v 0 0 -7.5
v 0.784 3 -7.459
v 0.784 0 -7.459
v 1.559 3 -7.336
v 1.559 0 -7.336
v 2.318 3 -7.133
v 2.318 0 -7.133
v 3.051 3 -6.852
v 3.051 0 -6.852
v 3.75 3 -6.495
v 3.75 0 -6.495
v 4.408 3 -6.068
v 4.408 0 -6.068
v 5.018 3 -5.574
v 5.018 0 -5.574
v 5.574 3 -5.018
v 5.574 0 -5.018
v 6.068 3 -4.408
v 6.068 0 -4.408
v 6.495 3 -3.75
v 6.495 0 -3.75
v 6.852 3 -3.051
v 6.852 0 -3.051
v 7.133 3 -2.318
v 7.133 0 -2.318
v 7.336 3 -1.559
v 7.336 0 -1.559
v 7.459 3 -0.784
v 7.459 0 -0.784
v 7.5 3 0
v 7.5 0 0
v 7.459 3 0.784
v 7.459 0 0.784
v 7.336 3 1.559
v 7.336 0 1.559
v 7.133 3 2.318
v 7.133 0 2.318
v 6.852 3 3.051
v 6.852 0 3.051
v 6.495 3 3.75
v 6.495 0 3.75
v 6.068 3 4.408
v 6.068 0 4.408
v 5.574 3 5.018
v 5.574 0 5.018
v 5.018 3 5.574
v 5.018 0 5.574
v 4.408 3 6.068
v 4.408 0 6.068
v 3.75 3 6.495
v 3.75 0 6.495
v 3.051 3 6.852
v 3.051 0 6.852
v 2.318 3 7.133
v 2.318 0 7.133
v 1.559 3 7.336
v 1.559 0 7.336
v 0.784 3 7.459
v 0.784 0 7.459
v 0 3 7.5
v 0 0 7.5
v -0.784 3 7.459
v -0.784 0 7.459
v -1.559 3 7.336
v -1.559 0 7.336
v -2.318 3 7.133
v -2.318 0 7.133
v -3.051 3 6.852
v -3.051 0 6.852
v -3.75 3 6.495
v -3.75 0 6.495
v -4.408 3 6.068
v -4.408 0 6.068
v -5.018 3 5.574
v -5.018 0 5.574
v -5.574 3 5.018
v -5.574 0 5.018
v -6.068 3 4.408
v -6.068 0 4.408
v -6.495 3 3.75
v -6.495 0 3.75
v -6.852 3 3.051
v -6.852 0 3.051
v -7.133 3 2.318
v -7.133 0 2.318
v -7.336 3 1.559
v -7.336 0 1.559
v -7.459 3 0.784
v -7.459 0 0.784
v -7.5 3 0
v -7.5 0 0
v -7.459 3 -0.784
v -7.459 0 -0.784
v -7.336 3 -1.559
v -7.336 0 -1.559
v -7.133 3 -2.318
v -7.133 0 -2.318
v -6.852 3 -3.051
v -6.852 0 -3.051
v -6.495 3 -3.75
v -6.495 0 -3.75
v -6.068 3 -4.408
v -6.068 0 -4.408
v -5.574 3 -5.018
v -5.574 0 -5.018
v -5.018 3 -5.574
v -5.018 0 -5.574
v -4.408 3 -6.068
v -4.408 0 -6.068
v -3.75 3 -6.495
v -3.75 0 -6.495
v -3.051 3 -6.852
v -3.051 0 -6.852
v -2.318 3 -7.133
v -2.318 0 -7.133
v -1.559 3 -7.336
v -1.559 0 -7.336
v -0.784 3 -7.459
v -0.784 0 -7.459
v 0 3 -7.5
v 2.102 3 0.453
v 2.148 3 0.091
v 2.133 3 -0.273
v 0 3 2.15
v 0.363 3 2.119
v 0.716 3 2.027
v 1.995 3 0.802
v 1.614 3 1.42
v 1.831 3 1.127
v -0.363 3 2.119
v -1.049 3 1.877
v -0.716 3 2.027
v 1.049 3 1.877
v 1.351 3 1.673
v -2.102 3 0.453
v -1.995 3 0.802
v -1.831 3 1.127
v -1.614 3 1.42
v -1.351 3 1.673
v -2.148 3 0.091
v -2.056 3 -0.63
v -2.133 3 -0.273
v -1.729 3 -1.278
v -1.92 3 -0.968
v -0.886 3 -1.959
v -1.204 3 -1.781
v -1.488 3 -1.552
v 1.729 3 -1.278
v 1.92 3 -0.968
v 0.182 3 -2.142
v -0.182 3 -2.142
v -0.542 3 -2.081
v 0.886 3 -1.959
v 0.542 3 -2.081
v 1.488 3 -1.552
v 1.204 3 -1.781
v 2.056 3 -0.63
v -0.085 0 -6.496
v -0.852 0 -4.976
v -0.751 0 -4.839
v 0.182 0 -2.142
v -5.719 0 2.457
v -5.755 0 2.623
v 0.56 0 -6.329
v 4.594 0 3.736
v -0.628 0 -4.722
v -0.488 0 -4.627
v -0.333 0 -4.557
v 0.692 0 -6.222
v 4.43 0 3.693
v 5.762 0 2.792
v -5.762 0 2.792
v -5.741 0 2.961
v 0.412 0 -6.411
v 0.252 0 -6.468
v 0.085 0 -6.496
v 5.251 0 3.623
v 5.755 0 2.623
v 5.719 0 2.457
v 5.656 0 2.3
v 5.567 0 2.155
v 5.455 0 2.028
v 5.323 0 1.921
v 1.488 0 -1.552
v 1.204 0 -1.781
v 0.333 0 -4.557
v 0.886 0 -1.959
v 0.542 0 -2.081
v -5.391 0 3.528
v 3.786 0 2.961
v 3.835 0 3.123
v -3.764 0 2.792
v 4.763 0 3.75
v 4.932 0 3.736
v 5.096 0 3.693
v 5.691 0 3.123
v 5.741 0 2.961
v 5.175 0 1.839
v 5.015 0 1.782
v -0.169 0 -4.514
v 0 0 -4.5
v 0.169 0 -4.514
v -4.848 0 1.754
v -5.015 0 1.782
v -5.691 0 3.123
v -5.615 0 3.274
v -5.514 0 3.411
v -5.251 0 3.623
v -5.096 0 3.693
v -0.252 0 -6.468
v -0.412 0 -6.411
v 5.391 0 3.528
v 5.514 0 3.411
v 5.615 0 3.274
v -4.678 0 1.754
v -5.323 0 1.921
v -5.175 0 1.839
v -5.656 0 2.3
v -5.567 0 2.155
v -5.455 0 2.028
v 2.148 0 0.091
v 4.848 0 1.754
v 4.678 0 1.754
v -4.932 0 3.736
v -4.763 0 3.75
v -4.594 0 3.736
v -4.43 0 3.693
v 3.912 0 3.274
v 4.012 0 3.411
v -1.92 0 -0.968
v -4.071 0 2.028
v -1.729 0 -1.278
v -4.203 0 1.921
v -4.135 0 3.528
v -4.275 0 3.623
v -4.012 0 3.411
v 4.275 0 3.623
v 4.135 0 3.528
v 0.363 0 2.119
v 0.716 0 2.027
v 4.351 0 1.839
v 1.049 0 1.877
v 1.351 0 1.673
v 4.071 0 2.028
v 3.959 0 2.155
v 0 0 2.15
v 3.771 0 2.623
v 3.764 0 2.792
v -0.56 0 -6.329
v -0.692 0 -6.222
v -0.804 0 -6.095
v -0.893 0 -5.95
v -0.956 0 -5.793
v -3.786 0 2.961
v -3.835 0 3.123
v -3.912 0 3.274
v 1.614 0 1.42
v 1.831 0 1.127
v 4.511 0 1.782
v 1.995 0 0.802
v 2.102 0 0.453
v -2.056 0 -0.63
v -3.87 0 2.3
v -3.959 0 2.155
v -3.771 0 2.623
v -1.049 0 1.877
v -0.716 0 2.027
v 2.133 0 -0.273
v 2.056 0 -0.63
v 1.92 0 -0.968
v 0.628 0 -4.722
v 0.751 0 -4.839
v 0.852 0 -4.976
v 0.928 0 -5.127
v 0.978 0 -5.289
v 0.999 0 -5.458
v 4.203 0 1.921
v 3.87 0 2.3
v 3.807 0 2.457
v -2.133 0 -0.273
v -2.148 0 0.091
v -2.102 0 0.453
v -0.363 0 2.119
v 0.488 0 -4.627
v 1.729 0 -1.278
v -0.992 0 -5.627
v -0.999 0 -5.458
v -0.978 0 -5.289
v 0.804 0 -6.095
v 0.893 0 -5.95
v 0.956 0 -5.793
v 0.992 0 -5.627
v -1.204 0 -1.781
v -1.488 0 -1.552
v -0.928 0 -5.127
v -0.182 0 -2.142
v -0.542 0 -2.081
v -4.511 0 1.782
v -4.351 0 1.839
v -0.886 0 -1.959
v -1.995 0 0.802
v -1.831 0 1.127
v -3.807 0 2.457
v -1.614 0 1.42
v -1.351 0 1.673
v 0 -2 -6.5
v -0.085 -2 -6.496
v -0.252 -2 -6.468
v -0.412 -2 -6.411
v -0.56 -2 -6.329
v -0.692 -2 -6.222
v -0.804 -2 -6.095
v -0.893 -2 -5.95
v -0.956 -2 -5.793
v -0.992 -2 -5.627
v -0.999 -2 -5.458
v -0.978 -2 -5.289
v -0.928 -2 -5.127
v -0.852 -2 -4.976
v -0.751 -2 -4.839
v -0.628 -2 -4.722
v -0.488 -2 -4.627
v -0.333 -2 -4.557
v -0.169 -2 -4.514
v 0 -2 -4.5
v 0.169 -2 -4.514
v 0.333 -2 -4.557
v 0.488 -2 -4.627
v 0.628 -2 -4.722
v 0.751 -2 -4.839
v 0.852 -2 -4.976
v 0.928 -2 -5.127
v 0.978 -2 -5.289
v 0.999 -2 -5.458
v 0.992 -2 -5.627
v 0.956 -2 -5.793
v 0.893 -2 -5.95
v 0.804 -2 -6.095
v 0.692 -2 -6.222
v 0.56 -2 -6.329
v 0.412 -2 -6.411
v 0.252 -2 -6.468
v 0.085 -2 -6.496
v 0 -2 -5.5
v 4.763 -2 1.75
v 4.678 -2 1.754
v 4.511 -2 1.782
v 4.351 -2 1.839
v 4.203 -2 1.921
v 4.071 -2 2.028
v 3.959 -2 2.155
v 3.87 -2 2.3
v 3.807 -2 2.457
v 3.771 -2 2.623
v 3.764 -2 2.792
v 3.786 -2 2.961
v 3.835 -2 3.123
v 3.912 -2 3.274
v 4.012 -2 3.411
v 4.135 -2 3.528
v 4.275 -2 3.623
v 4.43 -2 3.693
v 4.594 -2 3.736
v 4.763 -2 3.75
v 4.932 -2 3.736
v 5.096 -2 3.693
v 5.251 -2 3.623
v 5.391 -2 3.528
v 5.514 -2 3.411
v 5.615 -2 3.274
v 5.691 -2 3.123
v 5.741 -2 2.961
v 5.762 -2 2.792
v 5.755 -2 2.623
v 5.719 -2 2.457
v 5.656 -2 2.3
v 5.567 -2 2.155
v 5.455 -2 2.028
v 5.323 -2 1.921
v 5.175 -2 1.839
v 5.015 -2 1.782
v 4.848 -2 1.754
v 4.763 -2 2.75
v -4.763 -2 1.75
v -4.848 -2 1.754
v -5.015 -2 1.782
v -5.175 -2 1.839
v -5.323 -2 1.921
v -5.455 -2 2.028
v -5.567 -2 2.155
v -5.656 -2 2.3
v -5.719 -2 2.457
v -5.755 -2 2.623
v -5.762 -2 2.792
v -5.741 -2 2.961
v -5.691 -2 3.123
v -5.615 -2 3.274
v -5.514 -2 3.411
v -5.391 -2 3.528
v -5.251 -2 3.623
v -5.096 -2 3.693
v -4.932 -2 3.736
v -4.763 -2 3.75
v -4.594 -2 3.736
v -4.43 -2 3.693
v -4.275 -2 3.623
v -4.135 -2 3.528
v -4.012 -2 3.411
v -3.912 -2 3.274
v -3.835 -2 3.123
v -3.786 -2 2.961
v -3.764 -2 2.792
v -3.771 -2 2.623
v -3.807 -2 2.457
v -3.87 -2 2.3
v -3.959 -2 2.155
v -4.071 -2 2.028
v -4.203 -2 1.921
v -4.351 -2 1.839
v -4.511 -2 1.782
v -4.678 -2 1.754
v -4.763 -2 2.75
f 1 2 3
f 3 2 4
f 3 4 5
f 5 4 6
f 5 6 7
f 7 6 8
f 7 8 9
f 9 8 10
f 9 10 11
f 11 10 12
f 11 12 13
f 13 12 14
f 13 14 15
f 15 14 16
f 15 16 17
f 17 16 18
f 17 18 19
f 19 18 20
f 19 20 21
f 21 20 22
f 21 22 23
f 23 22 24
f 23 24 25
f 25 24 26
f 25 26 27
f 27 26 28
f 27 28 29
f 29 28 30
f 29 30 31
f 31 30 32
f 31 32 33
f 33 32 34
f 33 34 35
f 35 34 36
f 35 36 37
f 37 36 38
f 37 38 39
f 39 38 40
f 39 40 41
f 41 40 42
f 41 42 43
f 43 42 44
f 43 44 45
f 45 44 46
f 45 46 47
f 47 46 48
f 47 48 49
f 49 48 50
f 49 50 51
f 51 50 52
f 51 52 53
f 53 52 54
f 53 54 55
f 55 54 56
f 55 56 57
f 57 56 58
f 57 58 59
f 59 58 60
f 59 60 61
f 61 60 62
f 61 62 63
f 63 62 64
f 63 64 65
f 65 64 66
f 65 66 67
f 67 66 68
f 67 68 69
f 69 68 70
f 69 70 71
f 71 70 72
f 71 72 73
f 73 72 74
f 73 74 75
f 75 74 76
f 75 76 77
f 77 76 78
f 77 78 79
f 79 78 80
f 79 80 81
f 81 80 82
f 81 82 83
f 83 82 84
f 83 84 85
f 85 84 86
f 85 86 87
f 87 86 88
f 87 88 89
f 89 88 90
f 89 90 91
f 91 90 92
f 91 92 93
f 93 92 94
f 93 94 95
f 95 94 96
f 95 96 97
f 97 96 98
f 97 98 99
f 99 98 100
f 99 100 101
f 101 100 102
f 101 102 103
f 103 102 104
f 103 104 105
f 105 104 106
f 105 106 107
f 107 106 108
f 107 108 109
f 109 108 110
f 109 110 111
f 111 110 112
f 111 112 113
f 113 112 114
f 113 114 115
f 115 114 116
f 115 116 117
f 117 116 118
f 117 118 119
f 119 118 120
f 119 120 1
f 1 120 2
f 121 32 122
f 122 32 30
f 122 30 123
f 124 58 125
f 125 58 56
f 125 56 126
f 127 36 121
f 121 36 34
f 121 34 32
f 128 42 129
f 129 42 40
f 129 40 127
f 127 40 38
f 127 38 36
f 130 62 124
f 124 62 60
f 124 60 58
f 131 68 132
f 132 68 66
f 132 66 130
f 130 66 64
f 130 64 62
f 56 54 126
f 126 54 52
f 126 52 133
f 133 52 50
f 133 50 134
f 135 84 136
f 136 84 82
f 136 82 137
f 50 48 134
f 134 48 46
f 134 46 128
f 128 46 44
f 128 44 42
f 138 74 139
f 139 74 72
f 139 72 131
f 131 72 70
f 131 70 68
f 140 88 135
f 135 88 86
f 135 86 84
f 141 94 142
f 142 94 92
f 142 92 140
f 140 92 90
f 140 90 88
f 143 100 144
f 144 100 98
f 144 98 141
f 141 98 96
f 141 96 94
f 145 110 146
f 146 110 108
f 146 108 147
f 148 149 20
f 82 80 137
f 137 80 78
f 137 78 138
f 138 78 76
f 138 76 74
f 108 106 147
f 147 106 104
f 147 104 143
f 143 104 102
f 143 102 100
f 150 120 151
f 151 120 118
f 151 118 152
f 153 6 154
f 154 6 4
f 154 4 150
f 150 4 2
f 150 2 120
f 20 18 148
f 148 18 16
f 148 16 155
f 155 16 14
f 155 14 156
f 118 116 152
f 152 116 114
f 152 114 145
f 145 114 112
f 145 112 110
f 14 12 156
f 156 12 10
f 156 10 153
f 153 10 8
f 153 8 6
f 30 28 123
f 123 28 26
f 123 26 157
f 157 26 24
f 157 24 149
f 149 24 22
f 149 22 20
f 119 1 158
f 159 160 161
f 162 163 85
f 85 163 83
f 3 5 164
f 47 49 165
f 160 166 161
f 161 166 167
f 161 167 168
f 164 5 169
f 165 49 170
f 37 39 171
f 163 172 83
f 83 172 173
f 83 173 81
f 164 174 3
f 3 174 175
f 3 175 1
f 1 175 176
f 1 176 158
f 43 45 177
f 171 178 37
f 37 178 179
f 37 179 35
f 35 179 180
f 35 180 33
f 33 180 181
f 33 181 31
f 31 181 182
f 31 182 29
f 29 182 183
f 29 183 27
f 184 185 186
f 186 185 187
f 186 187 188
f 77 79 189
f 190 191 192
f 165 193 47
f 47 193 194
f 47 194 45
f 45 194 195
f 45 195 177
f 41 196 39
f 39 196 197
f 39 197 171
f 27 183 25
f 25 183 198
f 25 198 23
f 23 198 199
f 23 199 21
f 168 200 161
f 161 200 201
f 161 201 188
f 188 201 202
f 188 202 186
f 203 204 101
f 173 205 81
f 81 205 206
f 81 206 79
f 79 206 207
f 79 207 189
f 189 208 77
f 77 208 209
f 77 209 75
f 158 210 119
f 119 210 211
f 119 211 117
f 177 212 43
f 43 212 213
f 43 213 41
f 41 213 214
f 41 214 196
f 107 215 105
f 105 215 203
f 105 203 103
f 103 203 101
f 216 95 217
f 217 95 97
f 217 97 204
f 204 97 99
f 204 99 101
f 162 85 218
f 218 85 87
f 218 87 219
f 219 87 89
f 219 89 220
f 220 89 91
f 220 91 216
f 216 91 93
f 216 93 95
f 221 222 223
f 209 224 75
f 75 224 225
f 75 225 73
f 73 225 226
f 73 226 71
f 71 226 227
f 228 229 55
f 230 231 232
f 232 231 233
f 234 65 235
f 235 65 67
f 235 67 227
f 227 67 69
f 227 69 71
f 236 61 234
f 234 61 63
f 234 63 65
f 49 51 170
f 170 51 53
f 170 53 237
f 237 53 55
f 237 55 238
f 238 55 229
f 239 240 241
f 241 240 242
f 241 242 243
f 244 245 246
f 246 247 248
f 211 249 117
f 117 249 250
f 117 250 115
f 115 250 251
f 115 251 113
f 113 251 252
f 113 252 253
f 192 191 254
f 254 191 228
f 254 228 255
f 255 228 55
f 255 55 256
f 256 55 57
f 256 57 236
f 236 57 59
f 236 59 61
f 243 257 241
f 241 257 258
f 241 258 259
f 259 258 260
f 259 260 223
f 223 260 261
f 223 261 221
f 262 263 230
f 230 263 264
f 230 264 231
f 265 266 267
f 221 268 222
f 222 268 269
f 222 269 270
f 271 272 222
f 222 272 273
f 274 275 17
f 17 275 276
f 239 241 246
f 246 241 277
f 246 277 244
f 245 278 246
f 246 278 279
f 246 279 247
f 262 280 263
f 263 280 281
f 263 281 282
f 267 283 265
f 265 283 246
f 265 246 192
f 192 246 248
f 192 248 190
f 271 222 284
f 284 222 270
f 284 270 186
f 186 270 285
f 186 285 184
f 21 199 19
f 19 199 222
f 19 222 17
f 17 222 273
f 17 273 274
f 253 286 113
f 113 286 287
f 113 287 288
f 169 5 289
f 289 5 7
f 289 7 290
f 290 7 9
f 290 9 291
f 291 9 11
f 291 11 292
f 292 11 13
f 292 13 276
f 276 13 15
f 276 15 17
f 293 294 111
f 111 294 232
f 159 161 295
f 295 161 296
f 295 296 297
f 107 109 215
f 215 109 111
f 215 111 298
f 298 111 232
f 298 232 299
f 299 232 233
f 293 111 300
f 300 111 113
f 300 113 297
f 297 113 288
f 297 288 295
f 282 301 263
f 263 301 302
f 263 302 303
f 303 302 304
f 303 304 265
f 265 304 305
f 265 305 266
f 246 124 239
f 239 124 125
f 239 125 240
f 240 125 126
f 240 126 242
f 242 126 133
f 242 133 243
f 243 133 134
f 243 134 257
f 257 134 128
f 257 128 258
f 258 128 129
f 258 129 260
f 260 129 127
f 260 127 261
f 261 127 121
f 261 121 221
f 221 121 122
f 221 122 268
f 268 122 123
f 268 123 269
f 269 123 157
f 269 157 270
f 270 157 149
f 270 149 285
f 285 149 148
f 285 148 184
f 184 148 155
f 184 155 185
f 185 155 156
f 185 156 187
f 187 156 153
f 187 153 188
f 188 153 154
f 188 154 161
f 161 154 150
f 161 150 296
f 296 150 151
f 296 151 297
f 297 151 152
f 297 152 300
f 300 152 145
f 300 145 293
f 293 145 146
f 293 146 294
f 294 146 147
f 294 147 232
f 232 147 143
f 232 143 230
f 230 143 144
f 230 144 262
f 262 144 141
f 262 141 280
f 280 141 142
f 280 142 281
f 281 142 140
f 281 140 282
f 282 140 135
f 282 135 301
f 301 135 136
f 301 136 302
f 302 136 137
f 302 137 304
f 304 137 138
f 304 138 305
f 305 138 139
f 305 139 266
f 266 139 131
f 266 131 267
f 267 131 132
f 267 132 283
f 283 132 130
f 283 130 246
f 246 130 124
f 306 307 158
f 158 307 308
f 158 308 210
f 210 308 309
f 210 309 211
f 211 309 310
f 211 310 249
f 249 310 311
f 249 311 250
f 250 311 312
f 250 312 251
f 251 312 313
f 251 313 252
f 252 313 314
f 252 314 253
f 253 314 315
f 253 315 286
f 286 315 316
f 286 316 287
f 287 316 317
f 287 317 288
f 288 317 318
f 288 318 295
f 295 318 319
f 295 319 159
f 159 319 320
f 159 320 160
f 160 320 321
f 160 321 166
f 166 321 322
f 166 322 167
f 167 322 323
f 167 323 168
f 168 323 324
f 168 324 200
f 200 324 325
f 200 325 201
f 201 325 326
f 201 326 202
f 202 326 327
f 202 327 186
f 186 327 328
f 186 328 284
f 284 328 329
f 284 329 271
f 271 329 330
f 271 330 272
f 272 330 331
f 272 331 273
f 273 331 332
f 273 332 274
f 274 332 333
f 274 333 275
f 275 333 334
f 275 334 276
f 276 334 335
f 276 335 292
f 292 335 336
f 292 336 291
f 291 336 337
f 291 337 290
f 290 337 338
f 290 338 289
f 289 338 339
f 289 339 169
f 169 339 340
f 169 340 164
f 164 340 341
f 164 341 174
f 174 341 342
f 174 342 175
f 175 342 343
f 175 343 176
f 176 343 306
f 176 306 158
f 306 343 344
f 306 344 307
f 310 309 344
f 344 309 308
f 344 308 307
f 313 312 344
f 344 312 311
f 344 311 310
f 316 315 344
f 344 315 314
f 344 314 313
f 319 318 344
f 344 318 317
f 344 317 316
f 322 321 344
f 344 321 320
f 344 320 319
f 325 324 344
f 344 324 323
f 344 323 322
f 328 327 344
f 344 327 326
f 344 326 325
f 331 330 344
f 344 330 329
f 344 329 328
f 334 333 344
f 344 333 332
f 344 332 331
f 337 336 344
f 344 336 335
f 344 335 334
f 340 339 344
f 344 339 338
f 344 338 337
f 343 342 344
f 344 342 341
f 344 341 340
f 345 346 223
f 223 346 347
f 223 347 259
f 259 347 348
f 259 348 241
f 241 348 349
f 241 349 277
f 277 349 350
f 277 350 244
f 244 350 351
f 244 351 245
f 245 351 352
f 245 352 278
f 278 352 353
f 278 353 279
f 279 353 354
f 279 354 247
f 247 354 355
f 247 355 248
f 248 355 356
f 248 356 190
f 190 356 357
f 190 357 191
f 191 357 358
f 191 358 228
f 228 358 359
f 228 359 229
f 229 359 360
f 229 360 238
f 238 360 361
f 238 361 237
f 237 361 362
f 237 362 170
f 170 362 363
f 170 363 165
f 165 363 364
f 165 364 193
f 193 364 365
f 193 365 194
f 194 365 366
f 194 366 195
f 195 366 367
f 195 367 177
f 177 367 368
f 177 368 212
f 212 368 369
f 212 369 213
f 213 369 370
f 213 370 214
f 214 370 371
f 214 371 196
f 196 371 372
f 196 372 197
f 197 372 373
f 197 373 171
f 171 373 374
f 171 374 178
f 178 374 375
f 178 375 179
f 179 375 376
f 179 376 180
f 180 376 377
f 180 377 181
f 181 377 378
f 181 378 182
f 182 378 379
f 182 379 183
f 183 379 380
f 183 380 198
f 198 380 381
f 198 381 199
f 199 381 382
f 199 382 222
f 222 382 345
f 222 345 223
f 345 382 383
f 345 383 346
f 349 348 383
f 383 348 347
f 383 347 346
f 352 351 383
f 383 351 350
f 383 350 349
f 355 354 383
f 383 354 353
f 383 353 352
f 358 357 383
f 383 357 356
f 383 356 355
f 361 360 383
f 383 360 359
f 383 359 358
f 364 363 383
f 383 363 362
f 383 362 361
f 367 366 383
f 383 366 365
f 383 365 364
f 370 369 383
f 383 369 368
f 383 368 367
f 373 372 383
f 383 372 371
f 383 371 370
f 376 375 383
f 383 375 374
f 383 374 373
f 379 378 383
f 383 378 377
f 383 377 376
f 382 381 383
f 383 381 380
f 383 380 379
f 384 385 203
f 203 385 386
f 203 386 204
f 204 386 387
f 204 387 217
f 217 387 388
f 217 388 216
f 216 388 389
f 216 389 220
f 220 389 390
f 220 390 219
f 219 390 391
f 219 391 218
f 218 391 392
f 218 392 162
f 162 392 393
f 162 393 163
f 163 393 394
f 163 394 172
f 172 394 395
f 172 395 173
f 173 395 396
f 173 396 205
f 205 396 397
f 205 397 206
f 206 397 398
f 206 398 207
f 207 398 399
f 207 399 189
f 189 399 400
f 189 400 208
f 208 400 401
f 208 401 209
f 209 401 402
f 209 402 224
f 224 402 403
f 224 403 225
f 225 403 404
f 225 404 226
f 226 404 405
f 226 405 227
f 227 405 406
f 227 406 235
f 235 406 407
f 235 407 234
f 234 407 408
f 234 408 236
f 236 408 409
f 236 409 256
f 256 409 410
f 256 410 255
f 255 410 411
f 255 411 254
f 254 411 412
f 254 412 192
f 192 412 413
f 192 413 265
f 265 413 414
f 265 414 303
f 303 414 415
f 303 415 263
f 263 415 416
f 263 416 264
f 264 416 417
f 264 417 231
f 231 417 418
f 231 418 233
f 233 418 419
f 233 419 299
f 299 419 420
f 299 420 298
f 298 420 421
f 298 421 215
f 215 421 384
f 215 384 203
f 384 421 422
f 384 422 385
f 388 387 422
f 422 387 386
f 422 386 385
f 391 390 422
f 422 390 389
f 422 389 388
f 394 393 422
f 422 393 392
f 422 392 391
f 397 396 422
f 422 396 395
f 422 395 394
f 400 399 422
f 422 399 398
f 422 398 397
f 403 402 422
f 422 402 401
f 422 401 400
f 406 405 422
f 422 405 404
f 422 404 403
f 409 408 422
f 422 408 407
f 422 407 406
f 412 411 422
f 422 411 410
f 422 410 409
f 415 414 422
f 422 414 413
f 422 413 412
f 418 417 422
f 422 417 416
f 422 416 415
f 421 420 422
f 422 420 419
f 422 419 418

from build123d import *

# Parameters (mm, degrees)
SKETCH1_R            = 7.5
BOSS_EXTRUDE1_DEPTH  = 3
M4_CLEARANCE_HOLE1_D = 4.3
SKETCH4_R            = 1
BOSS_EXTRUDE2_DEPTH  = 2


with BuildPart() as part:
    # Sketch1 → Boss-Extrude1 (new body)
    with BuildSketch(Plane(origin=(0, 0, 0), x_dir=(1, 0, 0), z_dir=(0, 1, 0))):
        with Locations(Location((0, 0, 0), (0, 0, 270))):
            Circle(SKETCH1_R)
    extrude(amount=BOSS_EXTRUDE1_DEPTH)

    # M4 Clearance Hole1 (through all)
    with Locations(Plane(origin=(0, 3, 0), x_dir=(1, 0, 0), z_dir=(0, 1, 0))):
        with Locations((0, 0)):
            Hole(M4_CLEARANCE_HOLE1_D / 2)

    # Sketch4 → Boss-Extrude2 (add)
    with BuildSketch(Plane.XZ):
        with Locations(Location((0, -5.5, 0), (0, 0, 90))):
            Circle(SKETCH4_R)
        with Locations(Location((4.763139721, 2.75, 0), (0, 0, 90))):
            Circle(SKETCH4_R)
        with Locations(Location((-4.763139721, 2.75, 0), (0, 0, 90))):
            Circle(SKETCH4_R)
    extrude(amount=BOSS_EXTRUDE2_DEPTH)


solid = part.part
